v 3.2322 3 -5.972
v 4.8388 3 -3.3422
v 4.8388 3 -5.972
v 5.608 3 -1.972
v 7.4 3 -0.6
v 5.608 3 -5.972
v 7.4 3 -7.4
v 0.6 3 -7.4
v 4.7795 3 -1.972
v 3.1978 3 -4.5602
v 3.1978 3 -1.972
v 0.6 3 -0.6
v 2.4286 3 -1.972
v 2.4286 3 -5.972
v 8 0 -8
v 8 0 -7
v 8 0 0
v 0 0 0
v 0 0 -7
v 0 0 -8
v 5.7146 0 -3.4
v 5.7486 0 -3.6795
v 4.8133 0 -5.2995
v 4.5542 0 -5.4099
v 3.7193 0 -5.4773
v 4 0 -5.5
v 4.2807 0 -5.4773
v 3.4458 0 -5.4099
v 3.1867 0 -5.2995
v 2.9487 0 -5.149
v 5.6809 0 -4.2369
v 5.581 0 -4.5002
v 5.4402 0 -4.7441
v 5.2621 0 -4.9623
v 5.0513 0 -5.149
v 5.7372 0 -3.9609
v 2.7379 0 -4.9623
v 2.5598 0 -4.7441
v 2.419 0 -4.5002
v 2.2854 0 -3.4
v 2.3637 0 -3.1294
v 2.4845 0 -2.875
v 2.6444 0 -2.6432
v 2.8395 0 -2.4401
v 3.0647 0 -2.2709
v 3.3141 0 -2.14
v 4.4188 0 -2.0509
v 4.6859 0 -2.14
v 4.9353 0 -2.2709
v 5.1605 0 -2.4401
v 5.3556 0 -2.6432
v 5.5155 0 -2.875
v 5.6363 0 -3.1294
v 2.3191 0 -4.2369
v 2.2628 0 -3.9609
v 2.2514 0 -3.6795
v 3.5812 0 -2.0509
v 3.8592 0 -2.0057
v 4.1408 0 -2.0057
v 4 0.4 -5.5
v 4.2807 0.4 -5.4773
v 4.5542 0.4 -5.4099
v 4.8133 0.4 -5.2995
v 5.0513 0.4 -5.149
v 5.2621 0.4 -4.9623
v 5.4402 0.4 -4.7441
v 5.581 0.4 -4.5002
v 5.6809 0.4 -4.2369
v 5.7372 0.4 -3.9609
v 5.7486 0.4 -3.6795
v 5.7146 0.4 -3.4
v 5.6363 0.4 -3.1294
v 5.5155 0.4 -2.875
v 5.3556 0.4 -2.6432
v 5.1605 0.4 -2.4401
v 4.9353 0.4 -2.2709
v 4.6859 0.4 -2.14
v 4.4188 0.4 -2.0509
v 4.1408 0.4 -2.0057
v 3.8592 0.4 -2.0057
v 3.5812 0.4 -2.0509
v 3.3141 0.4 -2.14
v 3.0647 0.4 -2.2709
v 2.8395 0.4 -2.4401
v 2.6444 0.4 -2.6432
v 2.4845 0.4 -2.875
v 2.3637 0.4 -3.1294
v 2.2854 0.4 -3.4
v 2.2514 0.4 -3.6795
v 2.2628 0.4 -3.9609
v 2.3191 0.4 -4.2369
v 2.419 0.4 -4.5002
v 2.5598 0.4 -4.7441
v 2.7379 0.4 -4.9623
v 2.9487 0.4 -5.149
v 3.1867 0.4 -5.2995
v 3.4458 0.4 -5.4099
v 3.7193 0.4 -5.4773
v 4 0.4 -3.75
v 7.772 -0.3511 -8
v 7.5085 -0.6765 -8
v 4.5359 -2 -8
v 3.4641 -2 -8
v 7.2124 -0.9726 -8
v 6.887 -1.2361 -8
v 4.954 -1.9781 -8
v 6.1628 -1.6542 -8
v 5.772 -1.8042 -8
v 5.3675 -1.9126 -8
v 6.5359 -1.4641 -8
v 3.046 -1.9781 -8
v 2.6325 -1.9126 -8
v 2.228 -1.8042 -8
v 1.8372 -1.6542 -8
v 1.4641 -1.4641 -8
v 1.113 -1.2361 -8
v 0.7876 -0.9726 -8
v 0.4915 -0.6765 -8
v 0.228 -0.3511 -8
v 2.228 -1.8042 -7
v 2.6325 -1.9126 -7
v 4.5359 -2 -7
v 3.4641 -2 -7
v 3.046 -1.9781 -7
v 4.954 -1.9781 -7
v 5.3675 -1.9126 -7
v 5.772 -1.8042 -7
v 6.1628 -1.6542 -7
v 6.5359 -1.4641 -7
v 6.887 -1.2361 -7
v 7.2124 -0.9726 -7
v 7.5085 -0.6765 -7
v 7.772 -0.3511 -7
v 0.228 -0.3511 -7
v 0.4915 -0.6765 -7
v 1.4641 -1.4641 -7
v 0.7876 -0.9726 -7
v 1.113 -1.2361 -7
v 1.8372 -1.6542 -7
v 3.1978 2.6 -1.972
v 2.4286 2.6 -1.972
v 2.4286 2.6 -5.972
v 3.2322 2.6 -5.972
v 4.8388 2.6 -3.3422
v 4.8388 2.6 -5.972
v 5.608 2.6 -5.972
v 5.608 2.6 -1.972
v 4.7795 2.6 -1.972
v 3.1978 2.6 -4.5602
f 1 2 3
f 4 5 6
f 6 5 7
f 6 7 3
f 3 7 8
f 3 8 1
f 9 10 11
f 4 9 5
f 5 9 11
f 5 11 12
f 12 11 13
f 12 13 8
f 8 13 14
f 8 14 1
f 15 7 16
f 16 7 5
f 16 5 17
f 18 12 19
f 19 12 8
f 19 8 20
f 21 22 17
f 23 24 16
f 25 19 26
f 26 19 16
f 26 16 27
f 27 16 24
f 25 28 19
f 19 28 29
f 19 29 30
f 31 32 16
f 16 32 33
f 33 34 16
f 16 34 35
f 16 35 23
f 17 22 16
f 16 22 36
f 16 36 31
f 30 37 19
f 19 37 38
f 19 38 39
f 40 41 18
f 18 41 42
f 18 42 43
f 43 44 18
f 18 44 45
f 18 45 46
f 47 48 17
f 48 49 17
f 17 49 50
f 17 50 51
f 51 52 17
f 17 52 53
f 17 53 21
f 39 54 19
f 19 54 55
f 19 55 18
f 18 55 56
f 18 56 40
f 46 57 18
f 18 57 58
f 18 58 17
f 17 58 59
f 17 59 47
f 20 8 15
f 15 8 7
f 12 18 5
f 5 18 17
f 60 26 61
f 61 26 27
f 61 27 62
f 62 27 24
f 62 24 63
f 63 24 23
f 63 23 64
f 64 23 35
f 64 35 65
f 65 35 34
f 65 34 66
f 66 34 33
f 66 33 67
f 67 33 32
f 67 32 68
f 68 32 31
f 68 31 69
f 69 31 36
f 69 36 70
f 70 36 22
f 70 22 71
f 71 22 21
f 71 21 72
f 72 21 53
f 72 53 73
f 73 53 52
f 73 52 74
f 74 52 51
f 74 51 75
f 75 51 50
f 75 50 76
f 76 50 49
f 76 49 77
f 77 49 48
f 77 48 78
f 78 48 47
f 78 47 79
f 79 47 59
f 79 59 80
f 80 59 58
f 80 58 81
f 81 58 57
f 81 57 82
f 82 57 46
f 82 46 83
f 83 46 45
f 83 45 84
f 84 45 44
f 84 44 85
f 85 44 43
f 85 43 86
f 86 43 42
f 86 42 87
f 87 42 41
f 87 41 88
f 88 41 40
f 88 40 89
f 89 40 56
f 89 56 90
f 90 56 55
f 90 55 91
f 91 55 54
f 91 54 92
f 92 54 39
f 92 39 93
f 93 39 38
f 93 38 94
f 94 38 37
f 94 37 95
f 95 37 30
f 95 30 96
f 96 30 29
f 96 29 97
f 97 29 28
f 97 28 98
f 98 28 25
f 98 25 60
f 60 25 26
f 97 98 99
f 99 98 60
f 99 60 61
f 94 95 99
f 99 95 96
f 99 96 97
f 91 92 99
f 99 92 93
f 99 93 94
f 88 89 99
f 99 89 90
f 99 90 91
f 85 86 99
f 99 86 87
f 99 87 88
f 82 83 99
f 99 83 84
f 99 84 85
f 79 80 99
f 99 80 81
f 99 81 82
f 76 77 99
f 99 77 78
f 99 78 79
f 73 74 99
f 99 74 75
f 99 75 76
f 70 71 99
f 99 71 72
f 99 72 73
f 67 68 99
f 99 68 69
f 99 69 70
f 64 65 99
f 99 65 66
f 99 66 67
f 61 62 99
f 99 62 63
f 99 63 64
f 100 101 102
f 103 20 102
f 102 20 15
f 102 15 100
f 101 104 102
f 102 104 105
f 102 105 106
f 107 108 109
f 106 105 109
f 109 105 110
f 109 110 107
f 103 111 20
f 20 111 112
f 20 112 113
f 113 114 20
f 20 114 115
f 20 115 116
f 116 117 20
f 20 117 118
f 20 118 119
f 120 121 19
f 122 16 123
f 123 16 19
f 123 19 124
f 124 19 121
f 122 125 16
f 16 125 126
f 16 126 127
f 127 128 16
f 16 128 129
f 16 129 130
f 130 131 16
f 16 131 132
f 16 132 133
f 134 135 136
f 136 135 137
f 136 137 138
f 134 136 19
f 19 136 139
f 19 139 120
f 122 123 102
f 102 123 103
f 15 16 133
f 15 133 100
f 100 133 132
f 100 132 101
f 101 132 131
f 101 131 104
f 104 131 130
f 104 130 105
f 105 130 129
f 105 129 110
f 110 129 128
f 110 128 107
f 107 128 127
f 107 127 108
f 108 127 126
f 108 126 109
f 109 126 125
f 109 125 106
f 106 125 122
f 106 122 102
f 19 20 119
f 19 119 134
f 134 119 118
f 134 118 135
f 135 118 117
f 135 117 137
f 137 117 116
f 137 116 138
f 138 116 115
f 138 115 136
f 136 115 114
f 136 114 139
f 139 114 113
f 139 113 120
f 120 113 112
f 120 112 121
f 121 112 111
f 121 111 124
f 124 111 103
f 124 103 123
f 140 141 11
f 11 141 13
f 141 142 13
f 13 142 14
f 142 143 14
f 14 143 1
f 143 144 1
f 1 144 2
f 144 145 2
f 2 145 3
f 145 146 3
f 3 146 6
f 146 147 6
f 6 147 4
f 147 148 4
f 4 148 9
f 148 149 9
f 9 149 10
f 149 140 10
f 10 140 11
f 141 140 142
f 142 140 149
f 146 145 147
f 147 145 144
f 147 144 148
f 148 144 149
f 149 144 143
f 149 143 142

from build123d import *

# Parameters (mm, degrees)
SKETCH1_W               = 8
SKETCH1_H               = 8
BOSS_EXTRUDE1_DEPTH     = 3
CUT_EXTRUDE1_DEPTH      = 12.704699911
CUT_EXTRUDE1_DEPTH_BACK = 12.704699911
CUT_EXTRUDE2_DEPTH      = 11
SKETCH4_R               = 1.75
CUT_EXTRUDE3_DEPTH      = 0.4
SKETCH5_W               = 8
SKETCH5_H               = 1
BOSS_EXTRUDE2_DEPTH     = 2
FILLET1_R               = 4
CUT_EXTRUDE4_DEPTH      = 0.4


with BuildPart() as part:
    # Sketch1 → Boss-Extrude1 (new body)
    with BuildSketch(Plane(origin=(0, 0, 0), x_dir=(1, 0, 0), z_dir=(0, 1, 0))):
        with Locations((4, 4)):
            Rectangle(SKETCH1_W, SKETCH1_H)
    extrude(amount=BOSS_EXTRUDE1_DEPTH)

    # Sketch2 → Cut-Extrude1 (cut, two sides: drawn at the far end of the back side and taken through both)
    with BuildSketch(Plane.XY.offset(-CUT_EXTRUDE1_DEPTH_BACK)):
        Polygon((0, 0), (0.6, 3), (0, 3), align=None)
        Polygon((8, 0), (7.4, 3), (8, 3), align=None)
    extrude(amount=CUT_EXTRUDE1_DEPTH + CUT_EXTRUDE1_DEPTH_BACK, mode=Mode.SUBTRACT)

    # Sketch3 → Cut-Extrude2 (cut)
    with BuildSketch(Plane(origin=(0, 0, 0), x_dir=(0, 0, -1), z_dir=(1, 0, 0))):
        Polygon((0, 0), (0.6, 3), (0, 3), align=None)
        Polygon((8, 3), (7.4, 3), (8, 0), align=None)
    extrude(amount=CUT_EXTRUDE2_DEPTH, mode=Mode.SUBTRACT)

    # Sketch4 → Cut-Extrude3 (cut)
    with BuildSketch(Plane.XZ):
        with Locations(Location((4, -3.75, 0), (0, 0, 270))):
            Circle(SKETCH4_R)
    extrude(amount=-CUT_EXTRUDE3_DEPTH, mode=Mode.SUBTRACT)

    # Sketch5 → Boss-Extrude2 (add)
    with BuildSketch(Plane.XZ):
        with Locations((4, -7.5)):
            Rectangle(SKETCH5_W, SKETCH5_H)
    extrude(amount=BOSS_EXTRUDE2_DEPTH)

    # Fillet1
    # the kernel refuses this fillet: 4 mm, written as the material it takes off along each edge
    with BuildSketch(Plane(origin=(8, -2, -16.660254038), x_dir=(0, 1, 0), z_dir=(0, 0, 1)), Plane(origin=(0, -2, 1.660254038), x_dir=(0, 1, 0), z_dir=(0, 0, -1))) as fillet1_piece_1:
        with BuildLine():
            CenterArc((4, 3.464101615), FILLET1_R, 180, 60)
            Line((0, 3.464101615), (-0.08, 3.464101615))
            Line((-0.08, 3.464101615), (-0.08, 0))
            Line((-0.08, 0), (0, -0.08))
            ThreePointArc((0, -0.08), (1, -0.08), (1.96, -0.069282032))
            Line((1.96, -0.069282032), (2, 0))
        make_face()
    extrude(amount=18.320508076, mode=Mode.SUBTRACT)

    # Sketch6 → Cut-Extrude4 (cut)
    with BuildSketch(Plane(origin=(0, 3, 0), x_dir=(1, 0, 0), z_dir=(0, 1, 0))):
        Polygon((2.428562008, 1.972012859), (2.428562008, 5.972012859), (3.232247906, 5.972012859), (4.838818418, 3.342205167), (4.838818418, 5.972012859), (5.608049188, 5.972012859), (5.608049188, 1.972012859), (4.779523547, 1.972012859), (3.197792777, 4.560153885), (3.197792777, 1.972012859), align=None)
    extrude(amount=-CUT_EXTRUDE4_DEPTH, mode=Mode.SUBTRACT)


solid = part.part
